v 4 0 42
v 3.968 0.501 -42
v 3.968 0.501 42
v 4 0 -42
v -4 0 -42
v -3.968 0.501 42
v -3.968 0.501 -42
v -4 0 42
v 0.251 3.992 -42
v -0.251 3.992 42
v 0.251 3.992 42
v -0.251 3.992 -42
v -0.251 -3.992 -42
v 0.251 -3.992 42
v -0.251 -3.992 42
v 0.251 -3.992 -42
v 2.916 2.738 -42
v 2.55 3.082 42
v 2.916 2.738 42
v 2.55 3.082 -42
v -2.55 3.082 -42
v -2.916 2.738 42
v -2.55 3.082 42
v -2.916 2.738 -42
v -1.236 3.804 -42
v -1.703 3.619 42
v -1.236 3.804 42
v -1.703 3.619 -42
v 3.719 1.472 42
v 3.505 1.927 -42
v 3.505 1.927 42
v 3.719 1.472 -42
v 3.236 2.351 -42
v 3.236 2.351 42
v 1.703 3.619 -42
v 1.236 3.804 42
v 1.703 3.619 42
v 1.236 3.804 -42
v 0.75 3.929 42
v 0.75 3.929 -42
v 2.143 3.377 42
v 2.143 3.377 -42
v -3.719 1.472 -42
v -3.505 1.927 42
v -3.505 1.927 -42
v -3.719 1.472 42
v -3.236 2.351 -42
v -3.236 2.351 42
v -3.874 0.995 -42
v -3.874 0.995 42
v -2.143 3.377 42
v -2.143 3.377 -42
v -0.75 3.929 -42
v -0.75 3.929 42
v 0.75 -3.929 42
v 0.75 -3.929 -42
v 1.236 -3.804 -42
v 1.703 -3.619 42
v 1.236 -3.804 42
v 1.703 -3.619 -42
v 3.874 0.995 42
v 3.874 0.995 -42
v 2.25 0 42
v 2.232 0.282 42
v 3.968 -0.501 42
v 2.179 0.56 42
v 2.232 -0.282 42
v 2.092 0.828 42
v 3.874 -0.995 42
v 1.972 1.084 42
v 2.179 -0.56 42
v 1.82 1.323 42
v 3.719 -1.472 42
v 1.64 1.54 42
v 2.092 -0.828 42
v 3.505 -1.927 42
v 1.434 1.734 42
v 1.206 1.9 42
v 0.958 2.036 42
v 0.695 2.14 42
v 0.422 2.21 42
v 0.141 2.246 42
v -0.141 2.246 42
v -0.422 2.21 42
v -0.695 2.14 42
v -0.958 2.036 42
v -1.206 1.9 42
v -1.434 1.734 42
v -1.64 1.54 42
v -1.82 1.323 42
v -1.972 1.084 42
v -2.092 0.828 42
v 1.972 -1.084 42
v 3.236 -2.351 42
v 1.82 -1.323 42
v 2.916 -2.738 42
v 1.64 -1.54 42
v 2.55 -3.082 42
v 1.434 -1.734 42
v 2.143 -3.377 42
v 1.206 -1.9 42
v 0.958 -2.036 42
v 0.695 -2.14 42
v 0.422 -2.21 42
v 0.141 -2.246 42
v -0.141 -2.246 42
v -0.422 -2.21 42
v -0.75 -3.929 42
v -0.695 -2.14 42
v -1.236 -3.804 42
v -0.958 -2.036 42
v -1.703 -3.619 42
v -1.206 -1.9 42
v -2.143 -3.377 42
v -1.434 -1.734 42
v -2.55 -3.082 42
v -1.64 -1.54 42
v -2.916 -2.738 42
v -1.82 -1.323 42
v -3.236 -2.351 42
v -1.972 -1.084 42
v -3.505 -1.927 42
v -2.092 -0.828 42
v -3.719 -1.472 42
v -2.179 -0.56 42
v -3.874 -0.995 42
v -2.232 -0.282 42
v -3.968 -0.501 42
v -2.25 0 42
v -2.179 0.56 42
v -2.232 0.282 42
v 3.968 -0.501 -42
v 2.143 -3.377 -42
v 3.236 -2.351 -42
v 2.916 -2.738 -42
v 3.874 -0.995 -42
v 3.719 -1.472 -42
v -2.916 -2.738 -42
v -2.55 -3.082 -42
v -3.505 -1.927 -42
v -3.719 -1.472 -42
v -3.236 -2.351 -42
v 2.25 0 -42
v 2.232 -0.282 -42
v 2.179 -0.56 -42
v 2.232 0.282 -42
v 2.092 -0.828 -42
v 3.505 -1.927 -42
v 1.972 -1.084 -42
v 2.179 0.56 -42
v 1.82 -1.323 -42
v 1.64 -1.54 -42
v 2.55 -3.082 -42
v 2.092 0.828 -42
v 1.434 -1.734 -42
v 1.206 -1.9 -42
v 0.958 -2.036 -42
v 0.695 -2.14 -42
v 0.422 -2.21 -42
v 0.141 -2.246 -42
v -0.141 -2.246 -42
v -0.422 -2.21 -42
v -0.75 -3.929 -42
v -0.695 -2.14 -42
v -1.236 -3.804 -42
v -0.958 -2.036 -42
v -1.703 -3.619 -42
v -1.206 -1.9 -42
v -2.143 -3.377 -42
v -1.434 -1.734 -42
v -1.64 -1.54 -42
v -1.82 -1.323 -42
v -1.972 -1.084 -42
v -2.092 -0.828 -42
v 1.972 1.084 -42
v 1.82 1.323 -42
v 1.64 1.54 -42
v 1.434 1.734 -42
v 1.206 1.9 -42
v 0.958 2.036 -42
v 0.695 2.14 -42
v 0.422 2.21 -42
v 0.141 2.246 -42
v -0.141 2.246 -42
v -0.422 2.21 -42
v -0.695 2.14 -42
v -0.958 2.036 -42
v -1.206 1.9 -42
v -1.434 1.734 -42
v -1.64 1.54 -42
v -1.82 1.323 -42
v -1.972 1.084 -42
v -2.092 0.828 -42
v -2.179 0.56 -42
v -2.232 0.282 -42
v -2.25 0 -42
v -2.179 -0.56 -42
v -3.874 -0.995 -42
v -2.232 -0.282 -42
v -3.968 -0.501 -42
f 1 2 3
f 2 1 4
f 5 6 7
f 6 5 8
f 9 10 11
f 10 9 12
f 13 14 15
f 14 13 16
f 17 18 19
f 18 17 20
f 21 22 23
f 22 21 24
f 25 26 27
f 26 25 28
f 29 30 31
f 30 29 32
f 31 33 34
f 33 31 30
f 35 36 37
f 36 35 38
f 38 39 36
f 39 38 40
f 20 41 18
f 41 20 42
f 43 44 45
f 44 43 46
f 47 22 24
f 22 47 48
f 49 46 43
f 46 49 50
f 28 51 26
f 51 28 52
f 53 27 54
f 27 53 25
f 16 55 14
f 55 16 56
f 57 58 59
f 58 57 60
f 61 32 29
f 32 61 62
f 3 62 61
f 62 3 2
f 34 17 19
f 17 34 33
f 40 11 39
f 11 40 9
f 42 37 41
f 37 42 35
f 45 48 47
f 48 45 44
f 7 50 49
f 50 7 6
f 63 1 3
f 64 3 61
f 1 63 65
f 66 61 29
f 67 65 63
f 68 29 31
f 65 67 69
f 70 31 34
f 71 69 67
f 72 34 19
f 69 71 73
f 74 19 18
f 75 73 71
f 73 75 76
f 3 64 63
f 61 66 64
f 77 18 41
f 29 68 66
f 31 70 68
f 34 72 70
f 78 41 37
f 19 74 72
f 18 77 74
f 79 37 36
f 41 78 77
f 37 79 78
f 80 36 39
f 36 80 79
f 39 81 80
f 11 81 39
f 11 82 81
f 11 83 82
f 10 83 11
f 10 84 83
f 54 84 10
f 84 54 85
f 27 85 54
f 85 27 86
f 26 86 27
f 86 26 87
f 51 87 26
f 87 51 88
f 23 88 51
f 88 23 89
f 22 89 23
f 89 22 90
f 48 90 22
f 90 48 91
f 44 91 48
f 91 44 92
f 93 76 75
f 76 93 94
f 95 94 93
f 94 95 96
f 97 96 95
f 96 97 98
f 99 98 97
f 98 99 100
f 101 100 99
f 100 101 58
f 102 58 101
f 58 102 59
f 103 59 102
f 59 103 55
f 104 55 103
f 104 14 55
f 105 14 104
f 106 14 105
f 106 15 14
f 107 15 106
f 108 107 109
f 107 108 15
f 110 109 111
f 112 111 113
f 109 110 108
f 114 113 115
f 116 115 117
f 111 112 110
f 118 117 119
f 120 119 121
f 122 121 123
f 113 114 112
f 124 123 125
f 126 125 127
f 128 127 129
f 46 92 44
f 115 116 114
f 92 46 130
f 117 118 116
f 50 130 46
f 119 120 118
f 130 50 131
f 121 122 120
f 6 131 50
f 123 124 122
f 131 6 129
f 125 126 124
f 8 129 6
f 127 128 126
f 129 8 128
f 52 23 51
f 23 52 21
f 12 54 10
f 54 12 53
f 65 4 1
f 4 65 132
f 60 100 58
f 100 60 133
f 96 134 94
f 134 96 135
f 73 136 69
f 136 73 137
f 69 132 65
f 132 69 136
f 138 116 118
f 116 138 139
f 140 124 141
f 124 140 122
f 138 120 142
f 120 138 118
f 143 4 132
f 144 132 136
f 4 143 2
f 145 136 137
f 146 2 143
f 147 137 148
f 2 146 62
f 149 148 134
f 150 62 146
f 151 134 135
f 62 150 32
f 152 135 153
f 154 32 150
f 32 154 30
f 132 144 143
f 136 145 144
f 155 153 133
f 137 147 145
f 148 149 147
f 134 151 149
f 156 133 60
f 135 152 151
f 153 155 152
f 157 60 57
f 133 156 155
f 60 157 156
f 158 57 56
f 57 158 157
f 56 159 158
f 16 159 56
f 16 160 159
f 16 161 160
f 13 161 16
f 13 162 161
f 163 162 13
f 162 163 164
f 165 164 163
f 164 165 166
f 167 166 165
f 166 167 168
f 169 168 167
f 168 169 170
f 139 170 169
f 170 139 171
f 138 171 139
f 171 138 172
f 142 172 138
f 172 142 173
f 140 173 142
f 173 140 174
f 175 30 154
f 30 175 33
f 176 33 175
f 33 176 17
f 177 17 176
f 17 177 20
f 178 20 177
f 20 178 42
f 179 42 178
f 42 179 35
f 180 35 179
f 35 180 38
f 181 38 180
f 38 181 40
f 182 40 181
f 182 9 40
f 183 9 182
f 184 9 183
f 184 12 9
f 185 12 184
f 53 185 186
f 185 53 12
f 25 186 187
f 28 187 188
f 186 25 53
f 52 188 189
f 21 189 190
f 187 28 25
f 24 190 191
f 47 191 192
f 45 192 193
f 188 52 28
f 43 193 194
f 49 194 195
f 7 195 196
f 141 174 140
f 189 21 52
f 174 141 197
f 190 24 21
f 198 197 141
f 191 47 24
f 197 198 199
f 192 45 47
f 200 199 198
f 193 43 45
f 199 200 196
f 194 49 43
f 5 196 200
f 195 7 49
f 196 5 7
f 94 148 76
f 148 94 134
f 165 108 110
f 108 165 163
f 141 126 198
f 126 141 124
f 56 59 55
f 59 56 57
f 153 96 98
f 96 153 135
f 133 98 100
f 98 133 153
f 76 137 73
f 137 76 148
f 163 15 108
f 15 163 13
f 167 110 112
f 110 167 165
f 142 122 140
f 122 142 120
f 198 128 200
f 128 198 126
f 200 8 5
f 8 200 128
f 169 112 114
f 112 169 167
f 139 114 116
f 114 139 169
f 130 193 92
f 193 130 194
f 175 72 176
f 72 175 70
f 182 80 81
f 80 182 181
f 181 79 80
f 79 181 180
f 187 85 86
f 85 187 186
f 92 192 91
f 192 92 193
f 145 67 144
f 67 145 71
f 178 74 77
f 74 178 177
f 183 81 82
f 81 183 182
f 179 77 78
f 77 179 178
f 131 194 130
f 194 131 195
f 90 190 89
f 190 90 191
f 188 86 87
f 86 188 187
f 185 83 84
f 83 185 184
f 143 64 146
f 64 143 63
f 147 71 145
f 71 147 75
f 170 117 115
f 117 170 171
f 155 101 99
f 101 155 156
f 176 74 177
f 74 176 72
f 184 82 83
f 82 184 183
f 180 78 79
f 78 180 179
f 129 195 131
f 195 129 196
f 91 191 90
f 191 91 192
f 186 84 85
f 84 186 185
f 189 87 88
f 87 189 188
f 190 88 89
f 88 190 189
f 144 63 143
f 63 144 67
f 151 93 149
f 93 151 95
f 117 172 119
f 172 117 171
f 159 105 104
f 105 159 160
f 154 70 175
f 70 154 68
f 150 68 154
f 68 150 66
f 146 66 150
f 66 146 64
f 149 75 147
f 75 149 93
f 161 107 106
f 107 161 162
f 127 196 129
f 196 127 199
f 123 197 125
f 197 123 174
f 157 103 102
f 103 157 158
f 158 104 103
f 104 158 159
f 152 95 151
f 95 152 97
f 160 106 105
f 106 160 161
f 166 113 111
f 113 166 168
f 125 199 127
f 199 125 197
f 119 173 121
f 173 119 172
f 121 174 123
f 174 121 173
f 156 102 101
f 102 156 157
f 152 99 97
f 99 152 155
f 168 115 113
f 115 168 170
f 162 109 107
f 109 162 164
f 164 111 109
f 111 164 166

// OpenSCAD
$fn = 50;


difference() {
	union() {
		translate(v = [0, 0, -42.0000000000]) {
			cylinder(h = 84, r = 4.0000000000);
		}
	}
	union() {
		translate(v = [0, 0, -100.0000000000]) {
			cylinder(h = 200, r = 2.2500000000);
		}
	}
}
